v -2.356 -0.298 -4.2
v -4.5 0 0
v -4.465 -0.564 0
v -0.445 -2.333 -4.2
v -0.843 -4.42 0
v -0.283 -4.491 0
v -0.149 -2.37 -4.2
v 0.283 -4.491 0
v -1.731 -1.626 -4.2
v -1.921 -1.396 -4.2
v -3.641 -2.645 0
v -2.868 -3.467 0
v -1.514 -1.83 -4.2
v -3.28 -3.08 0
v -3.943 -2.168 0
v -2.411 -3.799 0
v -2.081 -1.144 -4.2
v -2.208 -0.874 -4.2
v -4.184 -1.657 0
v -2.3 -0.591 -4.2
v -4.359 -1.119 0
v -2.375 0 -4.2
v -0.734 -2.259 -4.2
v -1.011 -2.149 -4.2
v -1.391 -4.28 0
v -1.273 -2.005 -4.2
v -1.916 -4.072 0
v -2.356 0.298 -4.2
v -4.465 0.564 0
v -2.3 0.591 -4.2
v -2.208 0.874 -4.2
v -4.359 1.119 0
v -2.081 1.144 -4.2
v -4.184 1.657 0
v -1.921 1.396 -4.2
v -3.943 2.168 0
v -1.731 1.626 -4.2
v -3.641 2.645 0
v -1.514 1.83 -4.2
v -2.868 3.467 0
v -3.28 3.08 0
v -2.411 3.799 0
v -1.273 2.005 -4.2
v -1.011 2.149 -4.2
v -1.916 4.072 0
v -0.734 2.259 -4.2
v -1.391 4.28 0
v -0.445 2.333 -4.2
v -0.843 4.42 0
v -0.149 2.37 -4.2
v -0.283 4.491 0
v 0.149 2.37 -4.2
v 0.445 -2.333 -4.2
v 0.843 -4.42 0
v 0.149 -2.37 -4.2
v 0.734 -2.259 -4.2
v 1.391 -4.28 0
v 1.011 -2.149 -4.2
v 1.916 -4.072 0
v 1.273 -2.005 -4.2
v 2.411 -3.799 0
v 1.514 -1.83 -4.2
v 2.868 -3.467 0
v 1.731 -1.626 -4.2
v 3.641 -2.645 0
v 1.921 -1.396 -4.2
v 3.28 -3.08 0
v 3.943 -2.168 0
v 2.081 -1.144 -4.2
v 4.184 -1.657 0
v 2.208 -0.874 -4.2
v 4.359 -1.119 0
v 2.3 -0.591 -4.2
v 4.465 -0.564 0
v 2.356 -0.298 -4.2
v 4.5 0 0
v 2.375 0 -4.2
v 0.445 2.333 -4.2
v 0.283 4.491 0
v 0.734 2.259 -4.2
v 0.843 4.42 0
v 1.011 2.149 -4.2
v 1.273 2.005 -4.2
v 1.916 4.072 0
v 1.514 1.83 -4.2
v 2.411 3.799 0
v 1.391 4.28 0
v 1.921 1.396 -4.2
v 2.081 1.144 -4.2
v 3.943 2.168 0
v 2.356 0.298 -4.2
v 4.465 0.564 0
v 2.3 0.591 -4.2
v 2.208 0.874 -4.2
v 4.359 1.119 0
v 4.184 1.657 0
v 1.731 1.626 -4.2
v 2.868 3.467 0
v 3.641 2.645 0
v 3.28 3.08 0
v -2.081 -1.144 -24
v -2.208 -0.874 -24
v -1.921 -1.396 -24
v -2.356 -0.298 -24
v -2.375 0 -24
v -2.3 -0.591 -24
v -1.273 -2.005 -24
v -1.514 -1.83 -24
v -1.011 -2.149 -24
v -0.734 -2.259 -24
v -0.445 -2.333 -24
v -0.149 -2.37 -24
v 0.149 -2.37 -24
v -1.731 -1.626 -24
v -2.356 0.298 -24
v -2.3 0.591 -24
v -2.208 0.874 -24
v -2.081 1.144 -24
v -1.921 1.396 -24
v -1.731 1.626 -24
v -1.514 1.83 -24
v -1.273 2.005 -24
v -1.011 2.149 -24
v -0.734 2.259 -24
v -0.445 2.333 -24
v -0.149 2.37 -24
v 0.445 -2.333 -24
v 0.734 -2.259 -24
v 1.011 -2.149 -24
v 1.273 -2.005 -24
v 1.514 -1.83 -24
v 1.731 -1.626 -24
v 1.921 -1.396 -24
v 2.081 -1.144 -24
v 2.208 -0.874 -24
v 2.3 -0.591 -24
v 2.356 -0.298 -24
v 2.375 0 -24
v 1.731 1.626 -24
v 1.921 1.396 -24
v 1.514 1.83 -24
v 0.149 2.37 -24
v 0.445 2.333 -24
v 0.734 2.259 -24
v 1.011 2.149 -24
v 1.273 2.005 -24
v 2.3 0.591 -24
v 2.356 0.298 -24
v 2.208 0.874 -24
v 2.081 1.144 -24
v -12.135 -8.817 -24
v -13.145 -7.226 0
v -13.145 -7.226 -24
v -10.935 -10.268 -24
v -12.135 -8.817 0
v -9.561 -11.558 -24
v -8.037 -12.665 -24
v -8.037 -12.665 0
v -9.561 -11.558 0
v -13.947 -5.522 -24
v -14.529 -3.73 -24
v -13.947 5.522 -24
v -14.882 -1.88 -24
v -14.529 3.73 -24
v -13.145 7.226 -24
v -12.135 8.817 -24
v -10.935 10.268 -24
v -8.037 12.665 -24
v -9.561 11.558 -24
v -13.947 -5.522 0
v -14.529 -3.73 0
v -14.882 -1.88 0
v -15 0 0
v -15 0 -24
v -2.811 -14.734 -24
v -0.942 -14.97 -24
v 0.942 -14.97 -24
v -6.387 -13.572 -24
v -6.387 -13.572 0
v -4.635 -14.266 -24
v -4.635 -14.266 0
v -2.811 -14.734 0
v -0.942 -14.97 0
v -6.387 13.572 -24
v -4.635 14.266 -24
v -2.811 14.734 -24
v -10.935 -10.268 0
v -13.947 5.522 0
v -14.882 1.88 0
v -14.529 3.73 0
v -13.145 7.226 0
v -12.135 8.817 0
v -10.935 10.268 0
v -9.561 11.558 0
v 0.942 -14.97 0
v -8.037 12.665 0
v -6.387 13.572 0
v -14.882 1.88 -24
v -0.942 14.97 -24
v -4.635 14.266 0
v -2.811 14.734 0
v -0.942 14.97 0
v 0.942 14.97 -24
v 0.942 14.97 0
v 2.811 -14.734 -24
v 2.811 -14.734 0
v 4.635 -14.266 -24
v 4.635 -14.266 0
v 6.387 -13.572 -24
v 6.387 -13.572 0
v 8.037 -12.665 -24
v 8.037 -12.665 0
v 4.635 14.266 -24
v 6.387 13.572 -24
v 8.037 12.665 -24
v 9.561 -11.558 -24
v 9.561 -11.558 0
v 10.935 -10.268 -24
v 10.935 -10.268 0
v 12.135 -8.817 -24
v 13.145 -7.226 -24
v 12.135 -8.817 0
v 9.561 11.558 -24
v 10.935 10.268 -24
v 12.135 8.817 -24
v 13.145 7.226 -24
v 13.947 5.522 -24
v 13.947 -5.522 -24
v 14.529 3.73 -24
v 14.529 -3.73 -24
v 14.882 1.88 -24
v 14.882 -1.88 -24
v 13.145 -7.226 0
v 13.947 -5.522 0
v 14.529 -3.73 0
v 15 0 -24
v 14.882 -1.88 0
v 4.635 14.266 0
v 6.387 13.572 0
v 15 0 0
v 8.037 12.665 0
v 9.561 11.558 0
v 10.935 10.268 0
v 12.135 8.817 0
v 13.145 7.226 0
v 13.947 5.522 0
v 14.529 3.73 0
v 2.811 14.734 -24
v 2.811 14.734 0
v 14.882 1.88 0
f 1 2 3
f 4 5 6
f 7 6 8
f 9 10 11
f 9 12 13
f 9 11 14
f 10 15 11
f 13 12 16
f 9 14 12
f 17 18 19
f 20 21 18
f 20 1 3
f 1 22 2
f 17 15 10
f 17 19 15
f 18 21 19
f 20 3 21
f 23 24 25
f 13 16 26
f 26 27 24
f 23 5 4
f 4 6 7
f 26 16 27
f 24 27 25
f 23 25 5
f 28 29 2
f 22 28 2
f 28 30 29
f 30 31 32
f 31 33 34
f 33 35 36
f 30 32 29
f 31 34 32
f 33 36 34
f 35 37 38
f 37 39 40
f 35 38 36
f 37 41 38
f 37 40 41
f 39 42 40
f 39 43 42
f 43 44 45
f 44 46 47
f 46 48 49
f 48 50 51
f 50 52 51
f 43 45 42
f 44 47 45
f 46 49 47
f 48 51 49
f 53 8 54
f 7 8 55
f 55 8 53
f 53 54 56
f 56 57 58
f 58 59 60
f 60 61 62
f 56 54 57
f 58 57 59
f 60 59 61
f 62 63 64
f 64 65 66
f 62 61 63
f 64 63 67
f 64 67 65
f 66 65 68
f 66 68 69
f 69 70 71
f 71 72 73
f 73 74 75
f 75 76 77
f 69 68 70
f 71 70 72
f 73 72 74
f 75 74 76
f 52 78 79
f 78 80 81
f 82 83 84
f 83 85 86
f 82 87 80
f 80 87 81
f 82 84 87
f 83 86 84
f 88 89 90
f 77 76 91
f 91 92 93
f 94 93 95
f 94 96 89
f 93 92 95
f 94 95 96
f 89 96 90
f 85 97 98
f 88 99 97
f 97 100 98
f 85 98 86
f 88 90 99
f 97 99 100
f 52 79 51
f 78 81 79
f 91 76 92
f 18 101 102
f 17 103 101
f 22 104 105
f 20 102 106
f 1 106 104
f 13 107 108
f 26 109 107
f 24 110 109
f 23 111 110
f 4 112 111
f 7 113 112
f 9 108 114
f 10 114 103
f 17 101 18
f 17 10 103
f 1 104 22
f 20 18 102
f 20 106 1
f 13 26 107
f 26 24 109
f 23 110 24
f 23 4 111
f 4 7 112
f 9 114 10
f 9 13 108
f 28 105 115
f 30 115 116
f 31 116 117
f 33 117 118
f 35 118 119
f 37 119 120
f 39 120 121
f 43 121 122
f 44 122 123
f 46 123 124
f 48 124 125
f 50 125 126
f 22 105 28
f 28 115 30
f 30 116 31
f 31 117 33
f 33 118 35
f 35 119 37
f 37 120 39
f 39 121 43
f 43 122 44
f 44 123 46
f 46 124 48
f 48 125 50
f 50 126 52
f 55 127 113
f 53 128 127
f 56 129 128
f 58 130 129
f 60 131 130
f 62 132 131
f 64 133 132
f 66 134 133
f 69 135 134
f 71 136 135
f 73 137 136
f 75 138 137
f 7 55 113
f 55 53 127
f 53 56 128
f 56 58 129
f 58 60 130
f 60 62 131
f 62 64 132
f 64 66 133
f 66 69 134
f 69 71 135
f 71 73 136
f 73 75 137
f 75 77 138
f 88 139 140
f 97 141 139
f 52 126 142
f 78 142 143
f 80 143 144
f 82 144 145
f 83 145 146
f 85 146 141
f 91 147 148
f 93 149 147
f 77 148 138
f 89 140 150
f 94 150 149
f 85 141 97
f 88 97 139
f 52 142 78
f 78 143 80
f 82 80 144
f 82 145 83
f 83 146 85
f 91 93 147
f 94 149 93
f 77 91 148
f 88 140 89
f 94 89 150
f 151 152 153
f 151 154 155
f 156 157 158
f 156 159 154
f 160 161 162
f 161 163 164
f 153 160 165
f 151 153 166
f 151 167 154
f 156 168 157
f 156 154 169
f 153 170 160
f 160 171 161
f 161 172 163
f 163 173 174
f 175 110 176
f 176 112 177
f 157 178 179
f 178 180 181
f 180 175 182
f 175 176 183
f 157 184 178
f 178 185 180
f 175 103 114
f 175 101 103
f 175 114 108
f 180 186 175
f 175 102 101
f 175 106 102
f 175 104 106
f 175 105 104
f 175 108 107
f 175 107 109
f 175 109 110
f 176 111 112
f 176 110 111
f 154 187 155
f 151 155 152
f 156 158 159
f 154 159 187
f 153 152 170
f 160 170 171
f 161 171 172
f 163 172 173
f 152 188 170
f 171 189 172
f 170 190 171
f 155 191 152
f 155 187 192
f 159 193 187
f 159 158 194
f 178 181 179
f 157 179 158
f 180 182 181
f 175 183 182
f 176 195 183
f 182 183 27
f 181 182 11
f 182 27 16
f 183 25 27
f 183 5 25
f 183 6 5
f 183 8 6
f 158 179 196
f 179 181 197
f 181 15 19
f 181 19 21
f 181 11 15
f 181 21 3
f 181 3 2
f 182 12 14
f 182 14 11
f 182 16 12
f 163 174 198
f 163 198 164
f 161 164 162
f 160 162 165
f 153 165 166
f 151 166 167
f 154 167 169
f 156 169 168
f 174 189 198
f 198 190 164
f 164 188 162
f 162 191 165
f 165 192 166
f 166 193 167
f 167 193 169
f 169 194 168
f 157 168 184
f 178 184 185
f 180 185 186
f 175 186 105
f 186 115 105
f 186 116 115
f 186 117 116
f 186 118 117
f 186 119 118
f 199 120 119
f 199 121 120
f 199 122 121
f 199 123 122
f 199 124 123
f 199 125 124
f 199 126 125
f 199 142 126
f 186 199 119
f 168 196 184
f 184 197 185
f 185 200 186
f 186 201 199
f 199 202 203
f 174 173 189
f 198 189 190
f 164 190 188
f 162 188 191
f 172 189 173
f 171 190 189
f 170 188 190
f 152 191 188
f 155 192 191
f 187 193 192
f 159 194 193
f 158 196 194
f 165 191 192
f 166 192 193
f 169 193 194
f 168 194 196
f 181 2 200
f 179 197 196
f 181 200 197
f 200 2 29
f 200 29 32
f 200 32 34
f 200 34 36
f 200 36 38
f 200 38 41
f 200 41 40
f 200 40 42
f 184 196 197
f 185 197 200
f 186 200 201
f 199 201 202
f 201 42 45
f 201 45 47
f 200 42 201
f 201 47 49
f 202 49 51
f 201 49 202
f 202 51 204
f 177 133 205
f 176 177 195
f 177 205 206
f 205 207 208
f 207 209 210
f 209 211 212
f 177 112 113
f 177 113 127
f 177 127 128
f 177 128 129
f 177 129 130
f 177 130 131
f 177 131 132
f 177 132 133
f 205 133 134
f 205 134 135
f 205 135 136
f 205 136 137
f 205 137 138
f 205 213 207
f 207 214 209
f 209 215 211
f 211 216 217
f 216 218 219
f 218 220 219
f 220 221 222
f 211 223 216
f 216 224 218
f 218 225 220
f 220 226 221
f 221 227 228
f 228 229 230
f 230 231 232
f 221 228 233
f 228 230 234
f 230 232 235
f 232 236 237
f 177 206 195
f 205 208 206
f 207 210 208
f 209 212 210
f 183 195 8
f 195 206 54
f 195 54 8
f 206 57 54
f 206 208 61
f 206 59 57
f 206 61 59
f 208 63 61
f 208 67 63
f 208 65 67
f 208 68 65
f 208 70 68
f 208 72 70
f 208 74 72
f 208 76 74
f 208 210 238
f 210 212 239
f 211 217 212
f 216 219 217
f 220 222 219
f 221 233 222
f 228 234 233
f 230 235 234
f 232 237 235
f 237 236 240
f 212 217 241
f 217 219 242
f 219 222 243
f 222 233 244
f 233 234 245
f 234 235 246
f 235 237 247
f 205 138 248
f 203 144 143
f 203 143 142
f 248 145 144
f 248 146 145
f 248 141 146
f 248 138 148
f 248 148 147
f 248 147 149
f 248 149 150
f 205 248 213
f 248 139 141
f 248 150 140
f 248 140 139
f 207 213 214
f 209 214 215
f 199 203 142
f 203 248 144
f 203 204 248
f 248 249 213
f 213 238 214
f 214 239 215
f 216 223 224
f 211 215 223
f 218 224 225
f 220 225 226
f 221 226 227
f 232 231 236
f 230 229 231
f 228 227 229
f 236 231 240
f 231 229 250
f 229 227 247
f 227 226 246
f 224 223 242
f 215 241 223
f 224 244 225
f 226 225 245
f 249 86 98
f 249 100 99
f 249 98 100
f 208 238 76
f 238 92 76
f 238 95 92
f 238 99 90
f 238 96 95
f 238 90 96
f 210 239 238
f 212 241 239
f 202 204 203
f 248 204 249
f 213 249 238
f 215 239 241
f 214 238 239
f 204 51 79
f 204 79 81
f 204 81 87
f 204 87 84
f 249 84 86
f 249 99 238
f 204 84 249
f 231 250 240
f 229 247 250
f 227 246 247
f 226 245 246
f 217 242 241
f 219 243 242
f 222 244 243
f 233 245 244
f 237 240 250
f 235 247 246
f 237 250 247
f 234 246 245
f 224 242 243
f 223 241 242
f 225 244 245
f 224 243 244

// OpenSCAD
$fn = 50;

difference() {
	union() {
		translate(v = [0, 0, -24.0]) {
			cylinder(h = 24, r = 15.0);
		}
	}
	union() {
		translate(v = [0, 0, 0]) {
			rotate(a = [0, 0, 0]) {
				difference() {
					union() {
						translate(v = [0, 0, -27.0]) {
							cylinder(h = 27, r = 2.25);
						}
						translate(v = [0, 0, -4.2]) {
							cylinder(h = 4.2, r1 = 2.375, r2 = 4.5);
						}
						translate(v = [0, 0, -27.0]) {
							cylinder(h = 27, r = 2.375);
						}
						translate(v = [0, 0, -27.0]) {
							cylinder(h = 27, r = 2.25);
						}
					}
					union();
				}
			}
		}
	}
}
